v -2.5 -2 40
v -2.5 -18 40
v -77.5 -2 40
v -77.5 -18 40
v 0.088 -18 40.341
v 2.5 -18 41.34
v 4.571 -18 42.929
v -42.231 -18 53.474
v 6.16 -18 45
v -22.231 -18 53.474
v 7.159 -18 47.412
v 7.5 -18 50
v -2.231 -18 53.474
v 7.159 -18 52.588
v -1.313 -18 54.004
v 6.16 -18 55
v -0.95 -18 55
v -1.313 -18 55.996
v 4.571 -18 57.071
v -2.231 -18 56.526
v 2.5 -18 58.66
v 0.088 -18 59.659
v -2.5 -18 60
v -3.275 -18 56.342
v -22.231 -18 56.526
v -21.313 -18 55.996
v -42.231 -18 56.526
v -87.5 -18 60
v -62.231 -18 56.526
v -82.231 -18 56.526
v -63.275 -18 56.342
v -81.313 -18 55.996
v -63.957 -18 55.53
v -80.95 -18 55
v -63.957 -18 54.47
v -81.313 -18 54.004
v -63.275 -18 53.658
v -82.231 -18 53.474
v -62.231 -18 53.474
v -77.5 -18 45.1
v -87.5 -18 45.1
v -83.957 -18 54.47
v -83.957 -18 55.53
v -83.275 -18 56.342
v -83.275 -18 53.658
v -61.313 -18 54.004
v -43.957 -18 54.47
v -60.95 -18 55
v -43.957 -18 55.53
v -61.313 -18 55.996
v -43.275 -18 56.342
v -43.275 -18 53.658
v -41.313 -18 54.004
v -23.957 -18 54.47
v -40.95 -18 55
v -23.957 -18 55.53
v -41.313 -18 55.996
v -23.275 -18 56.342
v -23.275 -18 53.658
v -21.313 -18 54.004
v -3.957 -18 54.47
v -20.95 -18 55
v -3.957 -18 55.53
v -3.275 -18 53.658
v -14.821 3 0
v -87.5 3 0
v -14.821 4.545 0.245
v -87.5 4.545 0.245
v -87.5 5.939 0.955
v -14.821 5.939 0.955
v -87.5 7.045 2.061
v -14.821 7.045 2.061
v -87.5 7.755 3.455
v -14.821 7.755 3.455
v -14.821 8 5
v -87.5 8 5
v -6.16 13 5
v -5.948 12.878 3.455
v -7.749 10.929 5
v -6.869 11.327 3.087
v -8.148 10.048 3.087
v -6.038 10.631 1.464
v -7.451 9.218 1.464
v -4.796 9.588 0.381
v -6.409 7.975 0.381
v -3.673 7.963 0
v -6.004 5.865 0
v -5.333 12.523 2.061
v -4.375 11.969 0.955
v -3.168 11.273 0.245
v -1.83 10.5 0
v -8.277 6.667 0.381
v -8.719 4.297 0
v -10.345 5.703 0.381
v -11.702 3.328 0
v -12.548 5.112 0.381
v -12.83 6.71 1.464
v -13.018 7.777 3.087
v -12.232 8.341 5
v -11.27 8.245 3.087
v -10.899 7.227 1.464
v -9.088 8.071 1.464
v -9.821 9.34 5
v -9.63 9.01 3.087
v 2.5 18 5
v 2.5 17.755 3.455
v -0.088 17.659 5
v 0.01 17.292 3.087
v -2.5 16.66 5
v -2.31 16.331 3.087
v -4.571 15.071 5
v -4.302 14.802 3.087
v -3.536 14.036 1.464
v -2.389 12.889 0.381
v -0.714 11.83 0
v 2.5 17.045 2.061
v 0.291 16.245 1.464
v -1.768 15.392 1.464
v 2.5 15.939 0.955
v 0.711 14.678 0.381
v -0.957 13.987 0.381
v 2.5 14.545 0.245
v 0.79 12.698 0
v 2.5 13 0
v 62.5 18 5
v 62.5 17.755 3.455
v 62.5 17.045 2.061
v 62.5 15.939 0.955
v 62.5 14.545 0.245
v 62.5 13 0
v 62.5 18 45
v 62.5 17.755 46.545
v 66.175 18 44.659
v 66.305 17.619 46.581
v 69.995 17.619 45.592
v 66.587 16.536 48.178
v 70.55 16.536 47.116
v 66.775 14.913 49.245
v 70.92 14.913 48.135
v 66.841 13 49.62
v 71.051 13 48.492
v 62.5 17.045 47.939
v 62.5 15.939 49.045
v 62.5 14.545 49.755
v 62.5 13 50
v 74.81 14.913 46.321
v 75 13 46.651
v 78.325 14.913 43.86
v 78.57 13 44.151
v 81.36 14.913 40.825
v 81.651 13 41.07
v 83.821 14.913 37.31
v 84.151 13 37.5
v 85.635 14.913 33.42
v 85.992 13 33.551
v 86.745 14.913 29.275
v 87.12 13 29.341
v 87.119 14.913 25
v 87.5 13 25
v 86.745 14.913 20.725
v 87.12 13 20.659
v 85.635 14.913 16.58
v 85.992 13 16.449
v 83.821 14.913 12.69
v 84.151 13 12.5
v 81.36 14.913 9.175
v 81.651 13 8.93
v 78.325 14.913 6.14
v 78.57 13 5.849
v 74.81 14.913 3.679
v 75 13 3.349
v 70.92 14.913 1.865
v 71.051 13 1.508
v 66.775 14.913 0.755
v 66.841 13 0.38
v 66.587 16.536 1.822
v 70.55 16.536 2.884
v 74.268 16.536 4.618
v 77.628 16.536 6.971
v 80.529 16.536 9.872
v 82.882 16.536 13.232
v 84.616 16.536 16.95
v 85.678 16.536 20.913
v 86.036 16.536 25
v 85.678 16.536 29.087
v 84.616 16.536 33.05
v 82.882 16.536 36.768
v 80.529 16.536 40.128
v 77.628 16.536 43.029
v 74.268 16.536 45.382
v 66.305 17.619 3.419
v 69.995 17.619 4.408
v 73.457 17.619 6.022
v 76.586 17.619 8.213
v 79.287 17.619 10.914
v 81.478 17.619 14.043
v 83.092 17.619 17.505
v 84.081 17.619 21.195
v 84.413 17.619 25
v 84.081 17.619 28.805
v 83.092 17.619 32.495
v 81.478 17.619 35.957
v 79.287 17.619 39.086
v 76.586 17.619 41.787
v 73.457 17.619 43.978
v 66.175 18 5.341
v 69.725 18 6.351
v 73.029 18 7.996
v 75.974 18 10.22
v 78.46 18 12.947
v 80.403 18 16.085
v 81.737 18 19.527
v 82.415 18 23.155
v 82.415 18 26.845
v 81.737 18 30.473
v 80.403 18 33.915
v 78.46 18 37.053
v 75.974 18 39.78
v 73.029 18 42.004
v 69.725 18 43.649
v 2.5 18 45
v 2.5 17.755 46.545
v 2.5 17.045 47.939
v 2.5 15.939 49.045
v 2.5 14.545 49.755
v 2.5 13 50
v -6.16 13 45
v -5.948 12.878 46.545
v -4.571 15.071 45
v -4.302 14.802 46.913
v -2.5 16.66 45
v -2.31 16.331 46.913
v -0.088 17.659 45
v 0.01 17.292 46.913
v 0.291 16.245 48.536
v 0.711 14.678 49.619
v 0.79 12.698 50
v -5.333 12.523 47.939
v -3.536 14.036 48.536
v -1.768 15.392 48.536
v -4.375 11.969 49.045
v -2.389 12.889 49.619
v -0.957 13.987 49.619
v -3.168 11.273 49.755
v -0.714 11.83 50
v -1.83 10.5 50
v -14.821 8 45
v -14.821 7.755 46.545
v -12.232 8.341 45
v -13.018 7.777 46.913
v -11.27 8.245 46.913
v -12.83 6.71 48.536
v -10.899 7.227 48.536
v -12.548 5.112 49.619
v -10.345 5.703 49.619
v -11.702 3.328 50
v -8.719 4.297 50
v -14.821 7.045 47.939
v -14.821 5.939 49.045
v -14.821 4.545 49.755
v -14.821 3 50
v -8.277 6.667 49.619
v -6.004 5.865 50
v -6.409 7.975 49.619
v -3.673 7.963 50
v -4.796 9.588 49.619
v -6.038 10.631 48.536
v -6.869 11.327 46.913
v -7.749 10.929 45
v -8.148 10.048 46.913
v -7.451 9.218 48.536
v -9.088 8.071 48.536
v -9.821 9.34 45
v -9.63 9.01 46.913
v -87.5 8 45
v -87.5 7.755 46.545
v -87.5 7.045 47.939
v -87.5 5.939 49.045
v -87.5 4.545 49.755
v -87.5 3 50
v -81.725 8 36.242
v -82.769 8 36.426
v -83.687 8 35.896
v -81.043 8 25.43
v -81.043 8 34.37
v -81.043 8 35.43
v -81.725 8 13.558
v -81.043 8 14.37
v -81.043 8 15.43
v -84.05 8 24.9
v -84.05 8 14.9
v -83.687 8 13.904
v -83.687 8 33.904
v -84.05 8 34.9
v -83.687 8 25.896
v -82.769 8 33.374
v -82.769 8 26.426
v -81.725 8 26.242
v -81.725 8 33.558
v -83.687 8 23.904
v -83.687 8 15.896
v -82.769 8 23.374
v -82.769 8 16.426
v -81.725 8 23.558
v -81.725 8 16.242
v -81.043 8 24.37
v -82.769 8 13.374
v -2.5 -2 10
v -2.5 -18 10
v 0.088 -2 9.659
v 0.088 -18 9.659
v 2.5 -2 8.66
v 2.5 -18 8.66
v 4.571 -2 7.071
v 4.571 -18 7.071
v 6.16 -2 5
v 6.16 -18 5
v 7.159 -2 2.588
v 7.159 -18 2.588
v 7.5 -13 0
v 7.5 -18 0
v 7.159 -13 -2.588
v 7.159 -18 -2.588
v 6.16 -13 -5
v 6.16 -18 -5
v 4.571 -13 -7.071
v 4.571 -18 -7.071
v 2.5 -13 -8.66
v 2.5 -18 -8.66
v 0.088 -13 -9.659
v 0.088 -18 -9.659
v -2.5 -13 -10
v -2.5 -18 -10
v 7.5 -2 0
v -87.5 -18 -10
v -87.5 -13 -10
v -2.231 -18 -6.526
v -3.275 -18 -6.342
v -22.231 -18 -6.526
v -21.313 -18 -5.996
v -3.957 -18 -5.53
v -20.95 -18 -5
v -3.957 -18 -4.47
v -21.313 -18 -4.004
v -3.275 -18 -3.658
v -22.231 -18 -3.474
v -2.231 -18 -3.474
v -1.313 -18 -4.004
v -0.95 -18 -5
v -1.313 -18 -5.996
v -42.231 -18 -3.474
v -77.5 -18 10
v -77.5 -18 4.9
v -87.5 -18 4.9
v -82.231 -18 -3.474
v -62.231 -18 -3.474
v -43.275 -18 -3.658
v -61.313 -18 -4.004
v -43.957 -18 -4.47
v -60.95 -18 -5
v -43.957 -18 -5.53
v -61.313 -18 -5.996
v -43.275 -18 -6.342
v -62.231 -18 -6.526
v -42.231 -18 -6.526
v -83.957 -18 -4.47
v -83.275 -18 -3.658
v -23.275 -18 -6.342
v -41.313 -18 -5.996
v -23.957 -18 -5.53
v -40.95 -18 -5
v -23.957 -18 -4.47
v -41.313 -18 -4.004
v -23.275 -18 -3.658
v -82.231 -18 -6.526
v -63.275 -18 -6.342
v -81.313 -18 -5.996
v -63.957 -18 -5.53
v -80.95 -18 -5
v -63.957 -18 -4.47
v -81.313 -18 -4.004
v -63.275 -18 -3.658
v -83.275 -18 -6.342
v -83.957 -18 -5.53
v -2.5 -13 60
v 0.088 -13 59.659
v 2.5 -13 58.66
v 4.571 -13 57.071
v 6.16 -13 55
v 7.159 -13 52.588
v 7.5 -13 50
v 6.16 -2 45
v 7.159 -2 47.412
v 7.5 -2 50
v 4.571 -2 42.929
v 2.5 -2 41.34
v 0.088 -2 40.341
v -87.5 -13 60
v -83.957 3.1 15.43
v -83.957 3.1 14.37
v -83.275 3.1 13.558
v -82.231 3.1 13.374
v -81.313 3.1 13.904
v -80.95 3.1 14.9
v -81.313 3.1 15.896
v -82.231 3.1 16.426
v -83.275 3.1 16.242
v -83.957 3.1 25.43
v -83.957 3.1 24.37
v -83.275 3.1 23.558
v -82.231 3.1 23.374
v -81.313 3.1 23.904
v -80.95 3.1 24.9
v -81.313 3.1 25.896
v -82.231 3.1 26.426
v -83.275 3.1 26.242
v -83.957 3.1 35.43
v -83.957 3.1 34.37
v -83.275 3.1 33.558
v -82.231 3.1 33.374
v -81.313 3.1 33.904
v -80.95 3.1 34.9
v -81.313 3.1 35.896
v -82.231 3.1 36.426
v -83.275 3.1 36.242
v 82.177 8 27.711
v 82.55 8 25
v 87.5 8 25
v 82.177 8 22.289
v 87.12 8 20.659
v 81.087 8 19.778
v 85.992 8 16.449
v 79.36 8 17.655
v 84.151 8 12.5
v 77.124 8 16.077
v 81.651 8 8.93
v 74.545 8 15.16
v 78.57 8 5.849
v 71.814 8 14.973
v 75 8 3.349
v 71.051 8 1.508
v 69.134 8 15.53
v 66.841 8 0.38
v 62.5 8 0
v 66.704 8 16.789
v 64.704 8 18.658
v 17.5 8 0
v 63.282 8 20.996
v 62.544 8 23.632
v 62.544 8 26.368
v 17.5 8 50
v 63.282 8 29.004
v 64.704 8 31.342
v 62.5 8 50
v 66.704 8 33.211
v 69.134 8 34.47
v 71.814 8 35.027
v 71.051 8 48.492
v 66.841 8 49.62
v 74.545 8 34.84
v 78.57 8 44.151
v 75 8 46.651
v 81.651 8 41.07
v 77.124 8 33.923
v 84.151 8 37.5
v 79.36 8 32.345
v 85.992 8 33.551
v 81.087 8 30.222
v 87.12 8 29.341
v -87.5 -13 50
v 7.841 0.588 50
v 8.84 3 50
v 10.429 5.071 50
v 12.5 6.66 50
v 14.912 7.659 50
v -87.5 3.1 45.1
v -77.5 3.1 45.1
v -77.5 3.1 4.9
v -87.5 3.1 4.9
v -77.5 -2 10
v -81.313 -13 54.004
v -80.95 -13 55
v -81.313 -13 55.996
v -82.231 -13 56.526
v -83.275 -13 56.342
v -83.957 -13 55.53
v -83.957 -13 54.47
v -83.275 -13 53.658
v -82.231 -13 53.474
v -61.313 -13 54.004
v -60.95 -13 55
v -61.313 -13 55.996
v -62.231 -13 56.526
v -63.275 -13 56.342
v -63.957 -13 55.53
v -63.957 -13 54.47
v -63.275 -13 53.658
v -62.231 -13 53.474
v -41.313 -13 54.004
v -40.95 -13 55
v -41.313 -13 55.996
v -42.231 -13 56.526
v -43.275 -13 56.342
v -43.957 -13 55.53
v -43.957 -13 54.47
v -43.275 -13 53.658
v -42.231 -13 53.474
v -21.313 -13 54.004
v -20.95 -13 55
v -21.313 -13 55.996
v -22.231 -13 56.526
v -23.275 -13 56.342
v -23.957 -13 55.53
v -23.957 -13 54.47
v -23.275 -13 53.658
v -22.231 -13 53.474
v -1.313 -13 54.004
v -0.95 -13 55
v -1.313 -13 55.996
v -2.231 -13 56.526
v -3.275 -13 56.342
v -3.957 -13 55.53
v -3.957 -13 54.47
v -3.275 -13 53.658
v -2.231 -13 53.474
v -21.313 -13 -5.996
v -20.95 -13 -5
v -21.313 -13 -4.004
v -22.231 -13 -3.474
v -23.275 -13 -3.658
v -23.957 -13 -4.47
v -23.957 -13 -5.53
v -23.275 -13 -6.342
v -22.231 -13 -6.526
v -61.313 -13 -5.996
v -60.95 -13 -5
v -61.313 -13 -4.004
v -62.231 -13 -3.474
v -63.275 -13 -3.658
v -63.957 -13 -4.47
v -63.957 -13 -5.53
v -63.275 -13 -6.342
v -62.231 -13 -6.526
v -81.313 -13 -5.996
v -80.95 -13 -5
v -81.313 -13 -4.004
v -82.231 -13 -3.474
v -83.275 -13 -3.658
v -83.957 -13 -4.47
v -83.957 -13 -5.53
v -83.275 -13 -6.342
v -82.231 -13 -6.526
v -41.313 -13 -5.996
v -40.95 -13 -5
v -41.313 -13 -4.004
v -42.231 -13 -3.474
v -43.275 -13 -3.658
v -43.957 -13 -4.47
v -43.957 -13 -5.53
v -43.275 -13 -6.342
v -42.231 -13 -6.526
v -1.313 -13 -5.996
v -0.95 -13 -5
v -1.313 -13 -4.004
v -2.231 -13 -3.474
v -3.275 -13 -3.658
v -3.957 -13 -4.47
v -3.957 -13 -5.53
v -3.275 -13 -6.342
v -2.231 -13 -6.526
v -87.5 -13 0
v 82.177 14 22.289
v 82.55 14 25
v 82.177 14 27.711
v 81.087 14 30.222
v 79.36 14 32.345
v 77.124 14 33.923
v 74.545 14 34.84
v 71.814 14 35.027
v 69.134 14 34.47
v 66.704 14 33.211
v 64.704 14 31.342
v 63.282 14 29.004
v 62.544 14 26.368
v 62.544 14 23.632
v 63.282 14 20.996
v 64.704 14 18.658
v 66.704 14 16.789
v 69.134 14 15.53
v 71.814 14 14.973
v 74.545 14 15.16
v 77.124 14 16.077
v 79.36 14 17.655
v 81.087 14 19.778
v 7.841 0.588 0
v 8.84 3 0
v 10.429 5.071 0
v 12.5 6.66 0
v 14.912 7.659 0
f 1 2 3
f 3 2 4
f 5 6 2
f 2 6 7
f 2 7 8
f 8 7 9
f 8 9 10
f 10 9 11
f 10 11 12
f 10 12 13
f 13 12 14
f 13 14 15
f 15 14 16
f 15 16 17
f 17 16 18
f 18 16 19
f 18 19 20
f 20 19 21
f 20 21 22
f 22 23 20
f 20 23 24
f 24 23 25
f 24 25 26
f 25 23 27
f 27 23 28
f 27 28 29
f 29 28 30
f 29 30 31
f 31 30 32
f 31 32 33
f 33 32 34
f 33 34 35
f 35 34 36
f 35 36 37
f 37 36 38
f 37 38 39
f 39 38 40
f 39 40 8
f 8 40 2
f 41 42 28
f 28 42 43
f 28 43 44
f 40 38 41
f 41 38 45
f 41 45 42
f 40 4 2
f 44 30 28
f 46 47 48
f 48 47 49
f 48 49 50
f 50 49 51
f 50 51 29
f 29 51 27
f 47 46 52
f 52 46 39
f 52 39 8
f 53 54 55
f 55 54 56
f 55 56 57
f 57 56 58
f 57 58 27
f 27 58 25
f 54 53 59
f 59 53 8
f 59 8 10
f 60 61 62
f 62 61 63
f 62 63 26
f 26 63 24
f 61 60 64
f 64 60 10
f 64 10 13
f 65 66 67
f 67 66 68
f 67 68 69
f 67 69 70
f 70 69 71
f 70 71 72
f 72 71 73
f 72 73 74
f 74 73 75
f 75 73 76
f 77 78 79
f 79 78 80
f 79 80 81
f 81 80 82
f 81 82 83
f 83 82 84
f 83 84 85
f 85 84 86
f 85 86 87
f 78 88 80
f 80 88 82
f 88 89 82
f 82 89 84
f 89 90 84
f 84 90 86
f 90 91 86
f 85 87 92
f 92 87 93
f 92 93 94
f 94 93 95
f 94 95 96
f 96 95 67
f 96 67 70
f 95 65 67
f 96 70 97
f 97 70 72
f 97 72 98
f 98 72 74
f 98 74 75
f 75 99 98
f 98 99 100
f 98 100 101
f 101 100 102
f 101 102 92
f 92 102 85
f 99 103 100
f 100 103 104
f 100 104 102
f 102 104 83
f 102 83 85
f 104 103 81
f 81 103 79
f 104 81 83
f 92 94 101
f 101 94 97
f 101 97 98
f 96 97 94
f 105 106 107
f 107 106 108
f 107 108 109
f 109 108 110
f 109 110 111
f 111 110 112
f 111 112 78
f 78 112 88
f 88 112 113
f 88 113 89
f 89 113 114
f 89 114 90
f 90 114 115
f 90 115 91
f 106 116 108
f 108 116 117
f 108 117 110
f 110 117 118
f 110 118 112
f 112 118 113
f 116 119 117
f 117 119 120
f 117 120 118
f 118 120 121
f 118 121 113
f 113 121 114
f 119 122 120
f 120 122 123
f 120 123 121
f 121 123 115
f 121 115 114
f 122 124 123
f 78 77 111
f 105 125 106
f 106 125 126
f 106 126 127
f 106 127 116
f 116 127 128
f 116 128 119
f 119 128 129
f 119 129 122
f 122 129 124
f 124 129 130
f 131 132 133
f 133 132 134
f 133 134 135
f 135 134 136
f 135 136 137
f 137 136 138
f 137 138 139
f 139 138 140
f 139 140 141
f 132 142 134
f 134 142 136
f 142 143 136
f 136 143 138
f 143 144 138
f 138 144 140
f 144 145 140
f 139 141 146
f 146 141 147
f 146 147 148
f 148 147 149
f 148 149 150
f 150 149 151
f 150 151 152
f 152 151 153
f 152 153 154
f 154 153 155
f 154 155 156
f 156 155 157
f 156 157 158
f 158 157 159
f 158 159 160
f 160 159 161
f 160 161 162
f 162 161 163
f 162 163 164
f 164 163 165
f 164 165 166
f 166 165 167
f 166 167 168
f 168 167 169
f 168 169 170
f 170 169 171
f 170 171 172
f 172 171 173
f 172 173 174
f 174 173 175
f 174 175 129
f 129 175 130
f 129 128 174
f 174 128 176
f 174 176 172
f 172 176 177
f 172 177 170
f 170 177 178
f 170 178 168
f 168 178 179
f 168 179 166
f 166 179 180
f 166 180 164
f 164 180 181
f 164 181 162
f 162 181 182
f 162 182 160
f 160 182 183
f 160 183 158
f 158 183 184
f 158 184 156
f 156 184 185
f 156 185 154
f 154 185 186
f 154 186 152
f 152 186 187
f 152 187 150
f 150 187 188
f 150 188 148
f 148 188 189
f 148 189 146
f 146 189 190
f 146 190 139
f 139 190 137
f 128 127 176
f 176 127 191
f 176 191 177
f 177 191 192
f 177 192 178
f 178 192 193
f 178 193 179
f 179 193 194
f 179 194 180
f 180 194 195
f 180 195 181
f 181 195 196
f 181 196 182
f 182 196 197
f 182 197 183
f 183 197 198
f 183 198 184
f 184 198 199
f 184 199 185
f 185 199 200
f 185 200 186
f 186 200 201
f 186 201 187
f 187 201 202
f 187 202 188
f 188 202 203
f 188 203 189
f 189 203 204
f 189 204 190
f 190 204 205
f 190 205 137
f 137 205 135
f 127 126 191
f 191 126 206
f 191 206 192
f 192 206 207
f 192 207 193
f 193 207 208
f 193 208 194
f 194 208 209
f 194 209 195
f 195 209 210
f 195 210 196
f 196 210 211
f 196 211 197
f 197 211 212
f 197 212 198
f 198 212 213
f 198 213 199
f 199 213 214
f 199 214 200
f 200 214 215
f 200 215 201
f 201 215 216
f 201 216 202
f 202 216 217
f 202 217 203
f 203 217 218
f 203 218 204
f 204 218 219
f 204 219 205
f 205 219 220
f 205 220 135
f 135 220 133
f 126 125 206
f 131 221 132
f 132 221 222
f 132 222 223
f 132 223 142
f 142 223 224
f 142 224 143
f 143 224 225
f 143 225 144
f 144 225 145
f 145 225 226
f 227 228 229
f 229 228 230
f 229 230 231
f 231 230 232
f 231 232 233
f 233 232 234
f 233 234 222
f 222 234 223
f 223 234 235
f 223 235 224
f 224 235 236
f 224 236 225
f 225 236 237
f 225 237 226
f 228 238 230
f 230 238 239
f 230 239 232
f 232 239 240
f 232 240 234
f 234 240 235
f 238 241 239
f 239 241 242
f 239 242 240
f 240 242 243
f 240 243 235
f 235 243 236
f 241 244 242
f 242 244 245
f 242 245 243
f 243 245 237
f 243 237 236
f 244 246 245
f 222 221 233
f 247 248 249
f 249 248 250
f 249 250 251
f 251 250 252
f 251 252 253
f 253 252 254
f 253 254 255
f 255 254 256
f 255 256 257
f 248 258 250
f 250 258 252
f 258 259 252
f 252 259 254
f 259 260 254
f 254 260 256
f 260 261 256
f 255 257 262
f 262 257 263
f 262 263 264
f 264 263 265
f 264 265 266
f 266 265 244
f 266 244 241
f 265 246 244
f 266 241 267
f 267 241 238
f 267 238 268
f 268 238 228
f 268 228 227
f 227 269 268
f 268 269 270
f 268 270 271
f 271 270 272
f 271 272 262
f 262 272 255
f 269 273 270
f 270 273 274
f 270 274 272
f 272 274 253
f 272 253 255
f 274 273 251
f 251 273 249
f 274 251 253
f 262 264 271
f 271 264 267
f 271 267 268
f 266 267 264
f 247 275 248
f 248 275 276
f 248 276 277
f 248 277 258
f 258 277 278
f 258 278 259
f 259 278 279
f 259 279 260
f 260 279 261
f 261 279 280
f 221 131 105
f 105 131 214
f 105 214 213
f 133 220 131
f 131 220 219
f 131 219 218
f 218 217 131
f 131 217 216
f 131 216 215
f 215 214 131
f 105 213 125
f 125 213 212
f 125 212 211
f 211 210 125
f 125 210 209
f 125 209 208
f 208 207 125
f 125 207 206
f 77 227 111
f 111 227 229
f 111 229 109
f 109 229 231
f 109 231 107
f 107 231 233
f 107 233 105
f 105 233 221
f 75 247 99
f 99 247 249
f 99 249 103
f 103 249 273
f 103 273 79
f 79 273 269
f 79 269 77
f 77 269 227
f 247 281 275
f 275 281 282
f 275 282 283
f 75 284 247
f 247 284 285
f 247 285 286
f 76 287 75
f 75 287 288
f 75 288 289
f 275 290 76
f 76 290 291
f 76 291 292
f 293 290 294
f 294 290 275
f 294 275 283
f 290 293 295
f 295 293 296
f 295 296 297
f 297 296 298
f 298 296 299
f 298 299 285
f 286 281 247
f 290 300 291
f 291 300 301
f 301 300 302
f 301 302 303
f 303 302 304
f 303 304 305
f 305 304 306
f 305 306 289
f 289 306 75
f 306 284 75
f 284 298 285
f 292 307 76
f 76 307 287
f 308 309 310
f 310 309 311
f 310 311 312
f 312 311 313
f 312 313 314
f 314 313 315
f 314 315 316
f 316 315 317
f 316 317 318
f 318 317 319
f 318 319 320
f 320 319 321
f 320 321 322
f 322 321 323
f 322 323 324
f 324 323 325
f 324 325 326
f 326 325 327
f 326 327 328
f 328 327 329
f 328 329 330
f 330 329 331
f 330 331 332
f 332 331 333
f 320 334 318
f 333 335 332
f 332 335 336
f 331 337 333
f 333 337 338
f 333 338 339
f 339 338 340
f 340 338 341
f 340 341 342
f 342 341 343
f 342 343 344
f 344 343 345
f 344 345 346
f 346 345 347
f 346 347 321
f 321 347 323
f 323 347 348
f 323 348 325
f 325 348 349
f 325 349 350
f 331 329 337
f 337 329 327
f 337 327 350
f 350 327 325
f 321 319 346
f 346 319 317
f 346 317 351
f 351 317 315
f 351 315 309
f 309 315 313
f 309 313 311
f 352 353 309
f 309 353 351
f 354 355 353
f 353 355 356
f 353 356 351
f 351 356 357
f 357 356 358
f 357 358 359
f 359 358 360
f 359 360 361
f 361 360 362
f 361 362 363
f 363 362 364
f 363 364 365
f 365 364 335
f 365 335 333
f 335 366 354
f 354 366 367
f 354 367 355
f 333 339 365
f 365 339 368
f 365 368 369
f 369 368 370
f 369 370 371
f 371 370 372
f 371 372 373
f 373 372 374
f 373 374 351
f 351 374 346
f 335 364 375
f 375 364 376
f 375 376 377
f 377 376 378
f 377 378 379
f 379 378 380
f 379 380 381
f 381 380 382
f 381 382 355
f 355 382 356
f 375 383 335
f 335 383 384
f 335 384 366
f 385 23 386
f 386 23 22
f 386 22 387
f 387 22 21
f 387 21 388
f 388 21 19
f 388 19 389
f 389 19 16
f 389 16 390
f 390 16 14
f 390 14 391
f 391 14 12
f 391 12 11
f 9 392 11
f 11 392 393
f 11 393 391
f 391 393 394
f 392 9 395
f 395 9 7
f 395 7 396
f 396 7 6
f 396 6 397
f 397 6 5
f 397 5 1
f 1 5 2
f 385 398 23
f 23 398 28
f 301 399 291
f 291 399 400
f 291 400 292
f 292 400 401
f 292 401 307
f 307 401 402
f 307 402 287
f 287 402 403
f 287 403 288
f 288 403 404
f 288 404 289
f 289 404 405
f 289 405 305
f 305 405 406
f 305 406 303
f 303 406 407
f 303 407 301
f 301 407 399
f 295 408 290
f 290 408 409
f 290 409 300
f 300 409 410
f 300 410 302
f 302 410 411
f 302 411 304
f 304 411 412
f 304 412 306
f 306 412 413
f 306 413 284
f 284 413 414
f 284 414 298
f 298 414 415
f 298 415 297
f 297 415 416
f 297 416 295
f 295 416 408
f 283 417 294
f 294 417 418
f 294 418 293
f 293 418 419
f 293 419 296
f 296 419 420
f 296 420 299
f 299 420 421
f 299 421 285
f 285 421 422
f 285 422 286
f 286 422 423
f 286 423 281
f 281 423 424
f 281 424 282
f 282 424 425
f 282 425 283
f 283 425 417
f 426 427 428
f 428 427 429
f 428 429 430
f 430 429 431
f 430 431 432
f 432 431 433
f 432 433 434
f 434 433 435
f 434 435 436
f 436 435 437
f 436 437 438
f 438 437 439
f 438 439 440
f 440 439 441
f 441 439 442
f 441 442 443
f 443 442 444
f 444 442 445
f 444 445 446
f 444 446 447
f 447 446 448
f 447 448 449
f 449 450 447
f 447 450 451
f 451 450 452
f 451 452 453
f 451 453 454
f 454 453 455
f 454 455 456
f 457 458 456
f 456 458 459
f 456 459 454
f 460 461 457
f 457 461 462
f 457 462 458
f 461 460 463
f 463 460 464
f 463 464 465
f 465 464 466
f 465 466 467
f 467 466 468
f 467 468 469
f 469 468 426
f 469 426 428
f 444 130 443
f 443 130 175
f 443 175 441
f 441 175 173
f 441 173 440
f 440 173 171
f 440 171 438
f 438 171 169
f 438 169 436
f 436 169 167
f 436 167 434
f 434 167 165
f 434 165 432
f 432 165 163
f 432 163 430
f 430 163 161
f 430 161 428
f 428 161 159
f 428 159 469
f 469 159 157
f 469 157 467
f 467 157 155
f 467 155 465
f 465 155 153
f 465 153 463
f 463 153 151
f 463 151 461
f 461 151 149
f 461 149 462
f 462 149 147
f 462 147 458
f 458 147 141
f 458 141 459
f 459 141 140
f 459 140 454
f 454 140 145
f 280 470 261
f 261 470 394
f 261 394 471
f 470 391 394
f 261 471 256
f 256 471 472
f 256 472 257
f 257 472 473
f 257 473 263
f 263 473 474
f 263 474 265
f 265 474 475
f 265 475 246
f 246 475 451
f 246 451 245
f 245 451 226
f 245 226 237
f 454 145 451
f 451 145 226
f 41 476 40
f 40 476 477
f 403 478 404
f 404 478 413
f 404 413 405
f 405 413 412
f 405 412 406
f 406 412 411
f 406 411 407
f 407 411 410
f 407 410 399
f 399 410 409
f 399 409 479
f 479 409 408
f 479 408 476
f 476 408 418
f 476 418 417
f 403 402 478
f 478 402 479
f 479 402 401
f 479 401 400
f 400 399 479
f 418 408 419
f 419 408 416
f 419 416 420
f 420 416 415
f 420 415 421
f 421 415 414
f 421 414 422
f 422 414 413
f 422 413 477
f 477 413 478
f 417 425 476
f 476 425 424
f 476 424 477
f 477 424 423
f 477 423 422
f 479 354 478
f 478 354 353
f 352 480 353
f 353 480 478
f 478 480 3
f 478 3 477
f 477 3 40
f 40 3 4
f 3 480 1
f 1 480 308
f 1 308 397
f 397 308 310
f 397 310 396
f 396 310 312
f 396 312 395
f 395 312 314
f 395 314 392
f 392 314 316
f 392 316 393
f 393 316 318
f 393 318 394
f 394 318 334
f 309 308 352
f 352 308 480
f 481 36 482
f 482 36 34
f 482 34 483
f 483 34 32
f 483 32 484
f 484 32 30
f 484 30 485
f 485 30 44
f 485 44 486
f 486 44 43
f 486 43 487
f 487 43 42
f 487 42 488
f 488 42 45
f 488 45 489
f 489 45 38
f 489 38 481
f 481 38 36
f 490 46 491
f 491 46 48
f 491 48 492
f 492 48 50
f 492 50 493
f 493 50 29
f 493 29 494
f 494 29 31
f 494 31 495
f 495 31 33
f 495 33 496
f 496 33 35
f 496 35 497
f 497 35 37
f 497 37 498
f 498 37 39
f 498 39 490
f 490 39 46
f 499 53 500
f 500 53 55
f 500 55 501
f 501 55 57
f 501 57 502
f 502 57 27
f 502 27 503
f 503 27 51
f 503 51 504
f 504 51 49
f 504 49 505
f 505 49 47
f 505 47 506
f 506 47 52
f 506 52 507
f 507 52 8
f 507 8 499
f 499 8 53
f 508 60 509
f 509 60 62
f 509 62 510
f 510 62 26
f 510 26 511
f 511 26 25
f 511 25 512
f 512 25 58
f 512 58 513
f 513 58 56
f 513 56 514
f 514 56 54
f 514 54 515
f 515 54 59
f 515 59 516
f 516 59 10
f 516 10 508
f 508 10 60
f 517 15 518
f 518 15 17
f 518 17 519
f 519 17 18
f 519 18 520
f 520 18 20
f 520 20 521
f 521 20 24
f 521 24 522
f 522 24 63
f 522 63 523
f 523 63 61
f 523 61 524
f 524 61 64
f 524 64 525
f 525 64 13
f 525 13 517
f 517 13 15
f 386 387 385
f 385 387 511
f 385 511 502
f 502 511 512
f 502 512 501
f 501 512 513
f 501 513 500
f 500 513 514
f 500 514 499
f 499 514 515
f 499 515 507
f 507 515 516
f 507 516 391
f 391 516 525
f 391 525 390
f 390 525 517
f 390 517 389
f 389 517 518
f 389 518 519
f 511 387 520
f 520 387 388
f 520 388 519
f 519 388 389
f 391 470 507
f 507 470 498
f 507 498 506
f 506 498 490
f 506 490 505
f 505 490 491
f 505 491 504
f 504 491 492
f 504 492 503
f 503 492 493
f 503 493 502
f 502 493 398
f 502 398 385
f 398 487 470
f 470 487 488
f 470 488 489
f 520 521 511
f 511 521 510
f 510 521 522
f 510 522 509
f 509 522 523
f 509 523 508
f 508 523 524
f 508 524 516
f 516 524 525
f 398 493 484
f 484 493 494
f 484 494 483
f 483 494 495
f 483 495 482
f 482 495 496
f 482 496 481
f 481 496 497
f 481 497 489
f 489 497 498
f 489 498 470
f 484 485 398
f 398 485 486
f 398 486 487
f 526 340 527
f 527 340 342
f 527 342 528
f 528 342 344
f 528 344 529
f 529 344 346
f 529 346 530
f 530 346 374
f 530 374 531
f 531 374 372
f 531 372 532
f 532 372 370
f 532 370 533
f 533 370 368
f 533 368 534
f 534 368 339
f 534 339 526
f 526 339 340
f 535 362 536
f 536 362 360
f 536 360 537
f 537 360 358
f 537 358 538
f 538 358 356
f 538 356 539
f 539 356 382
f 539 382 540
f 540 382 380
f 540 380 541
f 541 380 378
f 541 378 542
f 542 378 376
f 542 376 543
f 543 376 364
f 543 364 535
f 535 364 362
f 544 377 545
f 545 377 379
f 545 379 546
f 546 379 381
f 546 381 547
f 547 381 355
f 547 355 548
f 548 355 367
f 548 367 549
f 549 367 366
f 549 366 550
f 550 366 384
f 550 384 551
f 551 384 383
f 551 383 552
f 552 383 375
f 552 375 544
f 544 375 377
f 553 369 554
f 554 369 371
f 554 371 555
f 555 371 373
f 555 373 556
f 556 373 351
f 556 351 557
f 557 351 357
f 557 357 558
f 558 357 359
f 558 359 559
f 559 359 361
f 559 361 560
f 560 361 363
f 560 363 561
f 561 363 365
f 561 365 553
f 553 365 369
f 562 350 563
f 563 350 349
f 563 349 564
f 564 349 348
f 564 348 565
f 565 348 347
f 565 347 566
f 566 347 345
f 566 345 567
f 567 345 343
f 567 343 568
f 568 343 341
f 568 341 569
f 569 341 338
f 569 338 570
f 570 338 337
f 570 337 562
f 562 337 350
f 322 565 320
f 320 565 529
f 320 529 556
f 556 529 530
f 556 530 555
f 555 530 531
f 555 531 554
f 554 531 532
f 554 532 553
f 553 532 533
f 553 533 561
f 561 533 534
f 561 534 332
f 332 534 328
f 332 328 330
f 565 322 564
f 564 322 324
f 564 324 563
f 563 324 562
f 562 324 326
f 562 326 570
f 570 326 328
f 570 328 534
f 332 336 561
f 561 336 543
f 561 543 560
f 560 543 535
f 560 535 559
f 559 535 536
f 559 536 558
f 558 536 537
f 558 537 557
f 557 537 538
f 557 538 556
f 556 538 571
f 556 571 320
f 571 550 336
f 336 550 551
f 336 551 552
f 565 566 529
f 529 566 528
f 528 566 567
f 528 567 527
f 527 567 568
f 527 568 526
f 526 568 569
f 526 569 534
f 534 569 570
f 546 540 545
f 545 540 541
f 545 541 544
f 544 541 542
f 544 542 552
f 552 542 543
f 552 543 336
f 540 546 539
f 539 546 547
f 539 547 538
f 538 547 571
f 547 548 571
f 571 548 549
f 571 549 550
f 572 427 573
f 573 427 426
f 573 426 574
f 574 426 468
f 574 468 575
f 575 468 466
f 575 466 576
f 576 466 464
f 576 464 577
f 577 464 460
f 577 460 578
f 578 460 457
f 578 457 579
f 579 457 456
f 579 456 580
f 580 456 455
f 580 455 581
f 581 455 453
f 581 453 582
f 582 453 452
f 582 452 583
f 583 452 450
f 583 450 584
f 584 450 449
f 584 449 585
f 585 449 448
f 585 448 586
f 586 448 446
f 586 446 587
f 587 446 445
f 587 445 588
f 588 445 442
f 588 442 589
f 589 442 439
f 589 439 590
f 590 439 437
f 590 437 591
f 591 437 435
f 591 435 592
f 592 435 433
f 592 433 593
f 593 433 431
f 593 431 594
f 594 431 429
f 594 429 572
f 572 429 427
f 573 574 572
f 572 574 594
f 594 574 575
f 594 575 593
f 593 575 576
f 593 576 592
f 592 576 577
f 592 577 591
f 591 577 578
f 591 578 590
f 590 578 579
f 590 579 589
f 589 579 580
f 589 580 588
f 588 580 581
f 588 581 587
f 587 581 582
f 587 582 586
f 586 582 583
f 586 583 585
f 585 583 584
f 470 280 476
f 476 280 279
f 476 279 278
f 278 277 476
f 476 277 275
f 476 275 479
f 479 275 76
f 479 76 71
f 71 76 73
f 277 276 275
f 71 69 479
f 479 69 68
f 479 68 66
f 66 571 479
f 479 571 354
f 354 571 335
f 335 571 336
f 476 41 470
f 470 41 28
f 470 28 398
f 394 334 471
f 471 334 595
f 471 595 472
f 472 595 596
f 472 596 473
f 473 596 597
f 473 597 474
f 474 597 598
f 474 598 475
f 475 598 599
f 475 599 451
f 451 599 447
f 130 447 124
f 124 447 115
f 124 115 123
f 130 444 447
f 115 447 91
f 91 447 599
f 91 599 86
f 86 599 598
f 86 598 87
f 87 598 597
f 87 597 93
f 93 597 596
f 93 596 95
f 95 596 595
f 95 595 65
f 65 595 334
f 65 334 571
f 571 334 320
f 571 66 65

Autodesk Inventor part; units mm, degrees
ref_plane "YZ Plane" through (0, 0, 0) normal (1, 0, 0) x (0, 1, 0)
ref_plane "XZ Plane" through (0, 0, 0) normal (0, 1, 0) x (-1, 0, 0)
ref_plane "XY Plane" through (0, 0, 0) normal (0, 0, 1) x (1, 0, 0)
sketch "Sketch1" plane through (0, 0, 0) normal (0, 0, 1) x (1, 0, 0)
  line L0 (-87.5, -18) -> (87.5, -18)
  line L1 (87.5, -18) -> (87.5, 18)
  line L2 (87.5, 18) -> (-87.5, 18)
  line L3 (-87.5, 18) -> (-87.5, -18)
  line L4 (-87.5, -18) -> (87.5, 18) construction
  line L5 (87.5, -18) -> (-87.5, 18) construction
  line L6 (-87.5, 18) -> (-7.5, 18)
  line L7 (-7.5, 18) -> (-7.5, 8)
  line L8 (-7.5, 8) -> (-87.5, 8)
  line L9 (-87.5, 8) -> (-87.5, 18)
  line L10 (87.5, -18) -> (7.5, -18)
  line L11 (7.5, -18) -> (7.5, 8)
  line L12 (7.5, 8) -> (87.5, 8)
  line L13 (87.5, 8) -> (87.5, -18)
  point P0 (0, 0)
  point P1 (87.5, 8)
  point P2 (-7.5, 18)
  point P3 (7.5, -18)
  point P4 (72.5, 8)
  dimension "d1" = 36
  dimension "d2" = 80
  dimension "d3" = 10
  dimension "d4" = 80
  dimension "d5" = 26
  dimension "d62" = 15
  dimension "d63" = 160
extrude "Extrusion1" add sketch "Sketch1" along normal blind 50 contours L3 L8 L7 L2 L1 L12 L11 L0
fillet "Fillet1" radius 10 3 edges at (-7.5, 18, 25) (-7.5, 8, 25) (7.5, 8, 25)
sketch "Sketch2" plane through (-87.5, -18, 0) normal (-1, 0, 0) x (0, 0, 1)
  line L0 (10, 0) -> (40, 0)
  line L1 (40, 0) -> (40, 16)
  line L2 (40, 16) -> (10, 16)
  line L3 (10, 16) -> (10, 0)
  line L4 (0, 26) -> (0, 0) projected
  line L5 (50, 26) -> (50, 0) projected
  line L6 (0, 0) -> (50, 0) projected
  line L7 (0, 26) -> (50, 26) projected
  point P0 (0, 18)
  dimension "d9" = 10
  dimension "d10" = 10
  dimension "d11" = 10
extrude "Extrusion2" cut sketch "Sketch2" against normal through all contours L3 L2 L1 L0
sketch "Sketch3" plane through (87.5, 8, 0) normal (0, -1, 0) x (1, 0, 0)
  circle A0 centre (-15, 25) radius 10.05
  line L0 (0, 0) -> (0, 50) projected
  circle A1 centre (-15, 25) radius 15
  point P0 (-87.5, 0)
  point P1 (0, 25)
  dimension "d14" = 20.1
  dimension "d15" = 30
extrude "Extrusion3" cut sketch "Sketch3" against normal blind 6 contours A0
sketch "Sketch4" plane through (-87.5, -18, 0) normal (0, -1, 0) x (1, 0, 0)
  line L0 (0, 50) -> (95, 50) projected
  line L1 (0, 50) -> (95, 50)
  line L2 (95, 50) -> (95, 60)
  line L3 (95, 60) -> (0, 60)
  line L4 (0, 60) -> (0, 50)
  line L5 (95, 40) -> (95, 50) projected
  line L6 (0, 0) -> (0, 50) projected
  line L7 (0, 25) -> (90, 25)
  circle A0 centre (5, 55) radius 1.55
  circle A1 centre (25, 55) radius 1.55
  circle A2 centre (45, 55) radius 1.55
  circle A3 centre (65, 55) radius 1.55
  circle A4 centre (85, 55) radius 1.55
  line L8 (0, 0) -> (95, 0)
  line L9 (0, 0) -> (95, 0)
  line L10 (95, 0) -> (95, -10)
  line L11 (95, -10) -> (0, -10)
  line L12 (0, -10) -> (0, 0)
  circle A5 centre (5, -5) radius 1.55
  circle A6 centre (25, -5) radius 1.55
  circle A7 centre (45, -5) radius 1.55
  circle A8 centre (65, -5) radius 1.55
  circle A9 centre (85, -5) radius 1.55
  line L13 (0, 0) -> (95, 0)
  line L14 (0, 0) -> (95, 0)
  line L15 (95, 0) -> (95, -10)
  line L16 (95, -10) -> (0, -10)
  line L17 (0, -10) -> (0, 0)
  circle A10 centre (5, -5) radius 1.55
  circle A11 centre (25, -5) radius 1.55
  circle A12 centre (45, -5) radius 1.55
  circle A13 centre (65, -5) radius 1.55
  circle A14 centre (85, -5) radius 1.55
  point P0 (87.5, 0)
  point P1 (0, 55)
  point P2 (0, -5)
  dimension "d18" = 10
  dimension "d19" = 3.1
  dimension "d20" = 5
  dimension "d23" = 20
extrude "Extrusion4" add sketch "Sketch4" against normal blind 5
sketch "Sketch9" plane through (-87.5, 8, 0) normal (-1, 0, 0) x (0, 0, 1)
  line L0 (4.9, -26) -> (45.1, -26)
  line L1 (45.1, -26) -> (45.1, -4.9)
  line L2 (45.1, -4.9) -> (4.9, -4.9)
  line L3 (4.9, -4.9) -> (4.9, -26)
  line L4 (40, -26) -> (60, -26) projected
  line L5 (10, -26) -> (10, -10) projected
  line L6 (40, -10) -> (40, -26) projected
  line L7 (10, -10) -> (40, -10) projected
  point P0 (0, -8)
  point P1 (40, -26)
  dimension "d44" = 5.1
  dimension "d45" = 5.1
  dimension "d46" = 5.1
extrude "Extrusion7" cut sketch "Sketch9" against normal blind 10 contours L3 L2 L1 L0 L6 L7 L5
sketch "Sketch11" plane through (-87.5, 3.1, 4.9) normal (0, -1, 0) x (1, 0, 0)
  circle A0 centre (5, 10) radius 1.55
  line L0 (10, 0) -> (0, 0) projected
  line L1 (0, 40.2) -> (10, 40.2) projected
  line L2 (10, 0) -> (10, 40.2)
  circle A1 centre (5, 20) radius 1.55
  circle A2 centre (5, 30) radius 1.55
  point P0 (87.5, -4.9)
  point P1 (5, 0)
  dimension "d50" = 3.1
  dimension "d51" = 10
  dimension "d54" = 10
fillet "Fillet2" radius 25 2 edges at (87.5, 13, 50) (87.5, 13, 0)
extrude "Extrusion8" cut sketch "Sketch11" against normal blind 10
fillet "Fillet3" radius 10 2 edges at (7.5, -15.5, 60) (7.5, -15.5, -10)
fillet "Fillet4" radius 5 9 edges at (-2.5006, 16.6603, 50) (-9.8208, 9.3398, 50) (-51.1605, 8, 50) (80.1778, 18, 42.6778) (32.4997, 18, 0) (-2.5006, 16.6603, 0) (-9.8208, 9.3398, 0) (-51.1605, 8, 0) (32.4997, 18, 50)
fillet "Fillet6" radius 10 2 edges at (7.5, -10, 10) (7.5, -10, 40)
equation "\"screw_out_width\" = 7.5"
properties part number "pulley_case_part_2_v2"
